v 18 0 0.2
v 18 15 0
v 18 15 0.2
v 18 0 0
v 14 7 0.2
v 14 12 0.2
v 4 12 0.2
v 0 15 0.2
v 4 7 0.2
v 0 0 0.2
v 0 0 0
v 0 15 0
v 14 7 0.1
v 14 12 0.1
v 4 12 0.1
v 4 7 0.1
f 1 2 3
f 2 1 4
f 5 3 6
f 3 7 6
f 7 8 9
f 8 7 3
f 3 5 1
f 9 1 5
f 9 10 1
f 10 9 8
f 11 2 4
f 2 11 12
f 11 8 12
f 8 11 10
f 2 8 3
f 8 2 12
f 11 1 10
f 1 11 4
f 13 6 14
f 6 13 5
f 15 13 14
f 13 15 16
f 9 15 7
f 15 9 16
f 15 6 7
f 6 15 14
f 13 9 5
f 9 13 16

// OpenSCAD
difference() {
    cube([18, 15, 0.2]);
    translate([4, 7, 0.1])
        cube([10, 5, 0.2]);
}
